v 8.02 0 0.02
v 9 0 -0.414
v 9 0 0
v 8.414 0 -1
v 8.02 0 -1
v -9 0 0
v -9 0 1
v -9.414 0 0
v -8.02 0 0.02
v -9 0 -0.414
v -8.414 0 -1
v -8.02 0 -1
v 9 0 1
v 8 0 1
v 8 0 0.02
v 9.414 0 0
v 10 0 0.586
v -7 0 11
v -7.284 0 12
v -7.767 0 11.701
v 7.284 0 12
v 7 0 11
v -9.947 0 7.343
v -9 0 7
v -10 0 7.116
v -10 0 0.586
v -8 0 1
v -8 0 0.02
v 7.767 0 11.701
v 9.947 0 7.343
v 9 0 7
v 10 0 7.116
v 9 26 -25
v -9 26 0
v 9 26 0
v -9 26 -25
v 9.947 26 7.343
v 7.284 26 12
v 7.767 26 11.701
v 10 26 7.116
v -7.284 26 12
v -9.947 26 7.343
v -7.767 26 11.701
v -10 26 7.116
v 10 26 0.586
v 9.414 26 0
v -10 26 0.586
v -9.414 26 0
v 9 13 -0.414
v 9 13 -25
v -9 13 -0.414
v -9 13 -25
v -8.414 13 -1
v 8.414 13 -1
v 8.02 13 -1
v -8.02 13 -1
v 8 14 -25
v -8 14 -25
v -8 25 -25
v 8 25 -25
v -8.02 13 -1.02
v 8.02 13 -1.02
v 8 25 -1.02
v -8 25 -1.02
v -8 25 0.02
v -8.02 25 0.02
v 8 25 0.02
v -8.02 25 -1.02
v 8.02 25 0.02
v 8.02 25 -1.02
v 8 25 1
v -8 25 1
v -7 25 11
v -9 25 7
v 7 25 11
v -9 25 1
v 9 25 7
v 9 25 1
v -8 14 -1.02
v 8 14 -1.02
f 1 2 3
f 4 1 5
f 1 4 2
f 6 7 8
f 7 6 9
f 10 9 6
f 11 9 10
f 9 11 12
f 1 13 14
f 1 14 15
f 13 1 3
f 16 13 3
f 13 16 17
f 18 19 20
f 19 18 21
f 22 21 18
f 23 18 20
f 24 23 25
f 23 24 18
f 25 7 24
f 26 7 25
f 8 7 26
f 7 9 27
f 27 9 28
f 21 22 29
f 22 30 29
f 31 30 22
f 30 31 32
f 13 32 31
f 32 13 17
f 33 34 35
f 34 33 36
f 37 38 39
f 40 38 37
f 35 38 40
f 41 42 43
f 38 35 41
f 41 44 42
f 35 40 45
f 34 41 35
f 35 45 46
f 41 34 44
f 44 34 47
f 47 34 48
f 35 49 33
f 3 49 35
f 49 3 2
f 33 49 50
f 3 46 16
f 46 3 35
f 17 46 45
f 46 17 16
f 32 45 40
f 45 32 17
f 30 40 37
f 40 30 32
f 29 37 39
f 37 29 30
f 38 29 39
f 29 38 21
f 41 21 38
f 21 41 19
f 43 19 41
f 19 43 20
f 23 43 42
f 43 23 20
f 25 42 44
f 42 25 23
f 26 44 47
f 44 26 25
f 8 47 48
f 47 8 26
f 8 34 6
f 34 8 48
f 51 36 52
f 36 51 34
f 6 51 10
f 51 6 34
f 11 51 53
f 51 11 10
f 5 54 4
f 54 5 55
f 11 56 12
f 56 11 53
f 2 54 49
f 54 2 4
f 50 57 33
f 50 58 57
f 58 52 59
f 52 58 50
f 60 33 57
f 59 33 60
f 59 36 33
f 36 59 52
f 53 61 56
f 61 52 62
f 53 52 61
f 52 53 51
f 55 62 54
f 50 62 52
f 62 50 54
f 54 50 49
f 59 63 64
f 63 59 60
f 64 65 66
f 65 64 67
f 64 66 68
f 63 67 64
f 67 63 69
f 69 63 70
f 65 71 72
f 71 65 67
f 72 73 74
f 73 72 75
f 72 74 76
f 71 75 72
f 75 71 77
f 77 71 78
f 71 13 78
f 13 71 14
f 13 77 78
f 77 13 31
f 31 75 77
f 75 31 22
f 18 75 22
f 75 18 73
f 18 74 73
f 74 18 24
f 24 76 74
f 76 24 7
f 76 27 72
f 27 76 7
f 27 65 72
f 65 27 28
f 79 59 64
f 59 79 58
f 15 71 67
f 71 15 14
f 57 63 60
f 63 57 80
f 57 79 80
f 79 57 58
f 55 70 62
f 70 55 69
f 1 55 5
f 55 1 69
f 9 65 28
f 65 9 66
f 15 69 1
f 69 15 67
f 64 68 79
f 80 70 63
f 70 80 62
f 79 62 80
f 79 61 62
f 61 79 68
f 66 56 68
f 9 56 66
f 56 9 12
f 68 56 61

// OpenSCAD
/*
JOELHO DE 90 GRAUS DESCENDO NO EIXO Z

Medidas em milímetros.

Geometria:
- Entrada com seção interna poligonal de 10 lados.
- Entrada no plano y = 0.
- Trecho inicial avança no eixo +y.
- Curva reta de 90 graus.
- Saída desce no eixo -z.
- Saída com seção interna retangular.
- Espessura das paredes: 1 mm.
- Base do trecho inicial aberta.
- Entrada aberta.
- Saída aberta.
- Demais faces fechadas.
*/

epsilon = 0.02;


// =========================
// PARÂMETROS GERAIS
// =========================

espessura = 1.0;

// Comprimento interno do trecho reto antes da curva,
// medido no eixo y.
comprimento_entrada = 25;

// Comprimento da saída descendente,
// medido no eixo z.
comprimento_saida_z = 25;

// Comprimento da abertura inferior do trecho inicial.
// Por padrão, vai até a curva.
comprimento_abertura_base = comprimento_entrada;


// =========================
// SEÇÃO INTERNA DA ENTRADA
// POLÍGONO DE 10 LADOS
// =========================

entrada_base_largura = 16;
entrada_topo_largura = 14;

entrada_vertical_baixo = 1;
entrada_degrau_horizontal = 1;
entrada_vertical_meio = 6;
entrada_obliquo_altura = 4;

entrada_altura_total =
    entrada_vertical_baixo
    + entrada_vertical_meio
    + entrada_obliquo_altura;


// Para compatibilizar:
// base = 16 mm,
// degrau horizontal = 1 mm para fora em cada lado,
// topo = 14 mm.
//
// Se você quiser forçar literalmente o oblíquo com dx = 1 mm,
// troque esta expressão por:
// entrada_obliquo_dx = 1;
entrada_obliquo_dx =
    (
        entrada_base_largura
        + 2 * entrada_degrau_horizontal
        - entrada_topo_largura
    ) / 2;


// =========================
// SEÇÃO INTERNA DA SAÍDA
// RETANGULAR, DESCENDO EM Z
// =========================

// Dimensão interna da saída no eixo x.
saida_largura_x_interna = entrada_base_largura;

// Dimensão interna da saída no eixo y.
// Por padrão, uso a altura total da seção poligonal,
// produzindo uma saída retangular de 16 mm x 11 mm.
saida_profundidade_y_interna = entrada_altura_total;


// =========================
// PERFIL POLIGONAL INTERNO
// DA ENTRADA
// Coordenadas no plano xz
// =========================

function perfil_entrada_pontos() =
    let(
        b = entrada_base_largura / 2,

        z1 = entrada_vertical_baixo,
        z2 = entrada_vertical_baixo + entrada_vertical_meio,
        z3 = entrada_altura_total,

        x_base = b,
        x_externo = b + entrada_degrau_horizontal,
        x_topo = entrada_topo_largura / 2
    )
    [
        [-x_base,    0],
        [ x_base,    0],

        [ x_base,    z1],
        [ x_externo, z1],
        [ x_externo, z2],
        [ x_topo,    z3],

        [-x_topo,    z3],
        [-x_externo, z2],
        [-x_externo, z1],
        [-x_base,    z1]
    ];


// =========================
// MÓDULOS 2D
// =========================

module perfil_entrada_interno_2d() {
    polygon(points = perfil_entrada_pontos());
}


module perfil_entrada_externo_2d() {
    offset(delta = espessura, chamfer = true)
        polygon(points = perfil_entrada_pontos());
}


// =========================
// EXTRUSÃO NO EIXO Y
// Perfil 2D no plano xz
// =========================

module extrude_y(comprimento) {
    multmatrix([
        [1, 0, 0, 0],
        [0, 0, 1, 0],
        [0, 1, 0, 0],
        [0, 0, 0, 1]
    ])
        linear_extrude(height = comprimento, convexity = 10)
            children();
}


// =========================
// TRECHO DE ENTRADA
// =========================

module volume_externo_entrada() {
    // O exterior avança um pouco além do comprimento interno,
    // para fechar a face posterior da curva.
    extrude_y(comprimento_entrada + espessura)
        perfil_entrada_externo_2d();
}


module vazio_interno_entrada() {
    // Abre a entrada no plano y = 0,
    // mas não atravessa a parede posterior da curva.
    translate([0, -epsilon, 0])
        extrude_y(comprimento_entrada + epsilon)
            perfil_entrada_interno_2d();
}


// =========================
// SAÍDA RETANGULAR DESCENDENTE
// =========================

module volume_externo_saida_descendo() {
    translate([
        -saida_largura_x_interna / 2 - espessura,
        comprimento_entrada - saida_profundidade_y_interna - espessura,
        -comprimento_saida_z
    ])
        cube([
            saida_largura_x_interna + 2 * espessura,
            saida_profundidade_y_interna + 2 * espessura,
            comprimento_saida_z
        ]);
}


module vazio_interno_saida_descendo() {
    translate([
        -saida_largura_x_interna / 2,
        comprimento_entrada - saida_profundidade_y_interna,
        -comprimento_saida_z - epsilon
    ])
        cube([
            saida_largura_x_interna,
            saida_profundidade_y_interna,
            comprimento_saida_z + 2 * epsilon
        ]);
}


// =========================
// ABERTURA INFERIOR DO TRECHO DE ENTRADA
// =========================

module abertura_base_entrada() {
    translate([
        -entrada_base_largura / 2 - epsilon,
        -epsilon,
        -espessura - epsilon
    ])
        cube([
            entrada_base_largura + 2 * epsilon,
            comprimento_abertura_base + epsilon,
            espessura + 2 * epsilon
        ]);
}


// =========================
// JOELHO COMPLETO
// =========================

module joelho_90_descendo_z() {
    difference() {

        union() {
            volume_externo_entrada();
            volume_externo_saida_descendo();
        }

        // Vazio interno do trecho poligonal
        vazio_interno_entrada();

        // Vazio interno da saída retangular descendente
        vazio_interno_saida_descendo();

        // Face removida: base do trecho de entrada
        abertura_base_entrada();
    }
}


// =========================
// GERAR MODELO
// =========================

joelho_90_descendo_z();
